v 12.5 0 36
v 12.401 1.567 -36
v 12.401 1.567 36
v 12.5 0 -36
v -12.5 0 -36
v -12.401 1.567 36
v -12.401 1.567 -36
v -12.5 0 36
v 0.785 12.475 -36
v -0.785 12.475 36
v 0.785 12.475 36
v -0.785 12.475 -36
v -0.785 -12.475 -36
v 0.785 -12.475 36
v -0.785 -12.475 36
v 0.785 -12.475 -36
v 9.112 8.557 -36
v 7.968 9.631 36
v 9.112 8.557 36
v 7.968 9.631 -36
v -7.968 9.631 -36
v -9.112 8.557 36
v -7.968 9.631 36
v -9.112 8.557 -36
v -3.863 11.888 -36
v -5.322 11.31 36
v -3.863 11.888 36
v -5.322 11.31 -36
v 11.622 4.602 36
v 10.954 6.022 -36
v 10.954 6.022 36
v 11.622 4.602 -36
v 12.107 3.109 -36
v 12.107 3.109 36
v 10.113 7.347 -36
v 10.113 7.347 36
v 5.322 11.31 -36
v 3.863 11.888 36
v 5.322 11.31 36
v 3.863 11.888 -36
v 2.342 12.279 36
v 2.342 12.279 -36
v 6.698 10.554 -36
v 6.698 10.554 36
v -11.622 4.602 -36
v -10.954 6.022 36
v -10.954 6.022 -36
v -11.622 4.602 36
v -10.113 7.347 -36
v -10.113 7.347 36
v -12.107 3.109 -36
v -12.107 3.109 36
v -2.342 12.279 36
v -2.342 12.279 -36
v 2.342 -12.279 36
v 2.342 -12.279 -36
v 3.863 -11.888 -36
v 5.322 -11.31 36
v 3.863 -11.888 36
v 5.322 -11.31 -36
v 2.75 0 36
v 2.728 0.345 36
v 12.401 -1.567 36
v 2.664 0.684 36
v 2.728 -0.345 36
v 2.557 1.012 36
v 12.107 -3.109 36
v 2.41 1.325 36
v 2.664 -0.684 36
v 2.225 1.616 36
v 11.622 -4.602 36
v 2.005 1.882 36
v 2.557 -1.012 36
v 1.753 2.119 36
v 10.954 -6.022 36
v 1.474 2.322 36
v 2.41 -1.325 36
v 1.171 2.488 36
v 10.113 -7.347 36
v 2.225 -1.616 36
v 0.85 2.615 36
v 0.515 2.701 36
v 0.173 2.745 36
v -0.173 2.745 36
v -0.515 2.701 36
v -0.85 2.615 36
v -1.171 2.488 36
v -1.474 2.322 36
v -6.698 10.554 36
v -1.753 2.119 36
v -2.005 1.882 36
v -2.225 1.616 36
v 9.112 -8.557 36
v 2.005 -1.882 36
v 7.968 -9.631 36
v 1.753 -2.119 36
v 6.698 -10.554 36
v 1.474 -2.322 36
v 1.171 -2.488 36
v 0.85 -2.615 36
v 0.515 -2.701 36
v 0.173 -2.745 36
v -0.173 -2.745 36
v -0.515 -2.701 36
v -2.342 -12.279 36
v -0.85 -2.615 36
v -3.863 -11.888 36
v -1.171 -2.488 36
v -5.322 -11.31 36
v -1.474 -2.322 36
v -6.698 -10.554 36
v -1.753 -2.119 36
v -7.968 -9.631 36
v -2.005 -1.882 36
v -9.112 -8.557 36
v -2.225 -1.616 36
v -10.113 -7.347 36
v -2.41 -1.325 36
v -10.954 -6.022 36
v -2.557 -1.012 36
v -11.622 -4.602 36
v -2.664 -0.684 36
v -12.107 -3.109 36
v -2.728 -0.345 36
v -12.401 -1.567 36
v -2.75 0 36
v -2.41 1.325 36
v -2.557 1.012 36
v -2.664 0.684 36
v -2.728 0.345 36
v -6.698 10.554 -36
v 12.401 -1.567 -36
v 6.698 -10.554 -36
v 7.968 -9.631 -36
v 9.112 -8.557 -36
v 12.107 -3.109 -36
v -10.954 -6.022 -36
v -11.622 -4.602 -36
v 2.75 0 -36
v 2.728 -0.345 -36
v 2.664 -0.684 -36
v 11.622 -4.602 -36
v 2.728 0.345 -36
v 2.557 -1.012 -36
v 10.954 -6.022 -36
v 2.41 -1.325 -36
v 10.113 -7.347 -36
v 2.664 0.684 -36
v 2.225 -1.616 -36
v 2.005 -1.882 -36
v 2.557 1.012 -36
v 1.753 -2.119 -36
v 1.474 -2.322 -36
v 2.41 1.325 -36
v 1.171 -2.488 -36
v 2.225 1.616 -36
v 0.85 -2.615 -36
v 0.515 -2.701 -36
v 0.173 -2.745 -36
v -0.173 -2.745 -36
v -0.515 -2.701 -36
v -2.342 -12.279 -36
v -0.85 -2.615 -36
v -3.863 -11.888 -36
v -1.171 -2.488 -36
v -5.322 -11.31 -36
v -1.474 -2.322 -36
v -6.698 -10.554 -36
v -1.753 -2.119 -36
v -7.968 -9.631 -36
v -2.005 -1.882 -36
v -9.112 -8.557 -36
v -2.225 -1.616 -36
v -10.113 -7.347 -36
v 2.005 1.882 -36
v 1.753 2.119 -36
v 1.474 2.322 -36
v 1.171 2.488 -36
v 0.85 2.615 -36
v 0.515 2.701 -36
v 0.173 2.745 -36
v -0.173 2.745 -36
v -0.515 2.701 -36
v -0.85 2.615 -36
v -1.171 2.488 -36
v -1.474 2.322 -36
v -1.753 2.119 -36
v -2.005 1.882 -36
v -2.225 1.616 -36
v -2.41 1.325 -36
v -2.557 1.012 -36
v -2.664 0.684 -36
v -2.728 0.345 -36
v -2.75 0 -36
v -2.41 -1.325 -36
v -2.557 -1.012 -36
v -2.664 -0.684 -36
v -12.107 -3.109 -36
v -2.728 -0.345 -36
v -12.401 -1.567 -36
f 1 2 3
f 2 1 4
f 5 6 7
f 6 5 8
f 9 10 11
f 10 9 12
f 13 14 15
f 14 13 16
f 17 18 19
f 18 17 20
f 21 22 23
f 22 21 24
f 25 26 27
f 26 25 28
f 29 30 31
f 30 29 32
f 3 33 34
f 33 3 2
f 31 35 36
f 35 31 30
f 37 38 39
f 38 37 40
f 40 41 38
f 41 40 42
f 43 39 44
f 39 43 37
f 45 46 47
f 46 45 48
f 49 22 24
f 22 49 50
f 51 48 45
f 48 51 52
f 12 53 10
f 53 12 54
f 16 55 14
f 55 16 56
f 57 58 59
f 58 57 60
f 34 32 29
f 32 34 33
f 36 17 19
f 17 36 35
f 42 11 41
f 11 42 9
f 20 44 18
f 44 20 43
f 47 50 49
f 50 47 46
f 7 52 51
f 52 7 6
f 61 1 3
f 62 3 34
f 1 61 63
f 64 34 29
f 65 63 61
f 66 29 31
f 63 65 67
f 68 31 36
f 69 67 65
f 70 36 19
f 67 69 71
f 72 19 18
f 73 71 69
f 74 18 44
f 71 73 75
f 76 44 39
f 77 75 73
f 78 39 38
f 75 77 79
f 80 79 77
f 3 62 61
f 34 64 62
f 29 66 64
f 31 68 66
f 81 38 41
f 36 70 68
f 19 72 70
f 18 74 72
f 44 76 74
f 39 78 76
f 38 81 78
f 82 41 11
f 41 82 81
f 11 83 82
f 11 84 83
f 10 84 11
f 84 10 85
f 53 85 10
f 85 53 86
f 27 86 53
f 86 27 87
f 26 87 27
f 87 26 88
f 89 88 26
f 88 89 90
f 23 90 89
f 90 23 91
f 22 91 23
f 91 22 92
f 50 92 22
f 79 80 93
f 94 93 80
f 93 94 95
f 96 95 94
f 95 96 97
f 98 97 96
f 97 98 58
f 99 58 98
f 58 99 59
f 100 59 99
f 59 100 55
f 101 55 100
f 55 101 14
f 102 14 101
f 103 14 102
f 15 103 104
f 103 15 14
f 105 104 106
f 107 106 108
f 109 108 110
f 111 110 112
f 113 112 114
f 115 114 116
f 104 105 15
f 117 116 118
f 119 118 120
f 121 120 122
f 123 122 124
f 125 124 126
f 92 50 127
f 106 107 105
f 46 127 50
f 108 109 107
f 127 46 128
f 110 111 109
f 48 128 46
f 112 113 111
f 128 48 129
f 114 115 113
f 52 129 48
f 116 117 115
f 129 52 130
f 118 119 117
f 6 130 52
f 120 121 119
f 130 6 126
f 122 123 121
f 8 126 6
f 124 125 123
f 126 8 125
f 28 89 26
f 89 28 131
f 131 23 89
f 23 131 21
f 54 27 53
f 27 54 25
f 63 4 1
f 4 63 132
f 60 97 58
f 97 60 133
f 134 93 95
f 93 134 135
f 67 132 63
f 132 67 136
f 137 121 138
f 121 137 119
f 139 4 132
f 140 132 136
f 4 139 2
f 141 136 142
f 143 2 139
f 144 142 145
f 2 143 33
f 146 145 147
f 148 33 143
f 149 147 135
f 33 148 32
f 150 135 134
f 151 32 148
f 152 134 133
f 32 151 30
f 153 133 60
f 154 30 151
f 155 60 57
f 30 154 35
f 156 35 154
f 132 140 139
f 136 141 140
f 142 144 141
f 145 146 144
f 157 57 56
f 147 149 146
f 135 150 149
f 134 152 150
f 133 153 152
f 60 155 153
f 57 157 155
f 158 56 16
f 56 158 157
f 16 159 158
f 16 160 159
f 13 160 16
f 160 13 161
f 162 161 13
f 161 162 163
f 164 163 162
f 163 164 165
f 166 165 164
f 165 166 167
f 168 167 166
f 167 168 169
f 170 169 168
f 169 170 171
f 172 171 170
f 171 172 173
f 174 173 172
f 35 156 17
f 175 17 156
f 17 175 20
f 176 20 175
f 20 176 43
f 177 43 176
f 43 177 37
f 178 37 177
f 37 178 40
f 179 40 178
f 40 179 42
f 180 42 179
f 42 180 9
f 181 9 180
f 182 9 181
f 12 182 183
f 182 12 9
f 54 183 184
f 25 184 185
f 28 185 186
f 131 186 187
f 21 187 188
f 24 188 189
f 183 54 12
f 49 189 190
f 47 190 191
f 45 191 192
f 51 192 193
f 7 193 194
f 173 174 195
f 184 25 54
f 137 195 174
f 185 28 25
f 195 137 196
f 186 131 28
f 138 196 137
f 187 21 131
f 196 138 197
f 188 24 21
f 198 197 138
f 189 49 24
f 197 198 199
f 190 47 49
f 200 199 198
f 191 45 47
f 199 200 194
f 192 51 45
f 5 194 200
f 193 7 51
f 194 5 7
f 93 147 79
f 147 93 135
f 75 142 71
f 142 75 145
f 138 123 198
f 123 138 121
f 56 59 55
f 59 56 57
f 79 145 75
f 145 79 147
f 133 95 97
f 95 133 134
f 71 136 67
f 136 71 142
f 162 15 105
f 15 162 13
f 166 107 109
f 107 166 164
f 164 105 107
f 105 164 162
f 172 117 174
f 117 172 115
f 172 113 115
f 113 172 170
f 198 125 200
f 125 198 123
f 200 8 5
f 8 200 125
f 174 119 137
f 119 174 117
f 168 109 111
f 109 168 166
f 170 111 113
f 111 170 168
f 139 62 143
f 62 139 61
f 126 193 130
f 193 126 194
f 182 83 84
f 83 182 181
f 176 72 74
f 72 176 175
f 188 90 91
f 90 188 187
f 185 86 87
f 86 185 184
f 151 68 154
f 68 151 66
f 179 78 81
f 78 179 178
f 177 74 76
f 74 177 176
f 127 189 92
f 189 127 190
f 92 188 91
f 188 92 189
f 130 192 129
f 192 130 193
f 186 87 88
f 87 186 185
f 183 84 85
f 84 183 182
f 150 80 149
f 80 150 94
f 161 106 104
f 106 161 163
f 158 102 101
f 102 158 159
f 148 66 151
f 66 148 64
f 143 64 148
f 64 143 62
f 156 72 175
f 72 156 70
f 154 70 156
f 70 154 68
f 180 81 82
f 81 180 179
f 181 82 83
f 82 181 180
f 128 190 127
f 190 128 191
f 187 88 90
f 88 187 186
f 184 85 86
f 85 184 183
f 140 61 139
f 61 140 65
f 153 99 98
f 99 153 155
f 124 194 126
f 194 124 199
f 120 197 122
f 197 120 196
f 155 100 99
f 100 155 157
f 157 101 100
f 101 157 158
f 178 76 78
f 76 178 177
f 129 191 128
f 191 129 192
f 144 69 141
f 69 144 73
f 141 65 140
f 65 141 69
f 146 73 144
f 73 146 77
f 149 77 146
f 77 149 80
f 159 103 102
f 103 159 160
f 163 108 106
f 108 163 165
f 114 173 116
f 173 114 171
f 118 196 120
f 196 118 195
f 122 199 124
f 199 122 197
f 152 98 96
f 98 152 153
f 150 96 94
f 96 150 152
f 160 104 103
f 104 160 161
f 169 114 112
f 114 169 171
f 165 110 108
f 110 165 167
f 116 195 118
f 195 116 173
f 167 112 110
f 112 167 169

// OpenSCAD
$fn = 50;


difference() {
	union() {
		translate(v = [0, 0, -36.0000000000]) {
			cylinder(h = 72, r = 12.5000000000);
		}
	}
	union() {
		translate(v = [0, 0, -100.0000000000]) {
			cylinder(h = 200, r = 2.7500000000);
		}
	}
}
